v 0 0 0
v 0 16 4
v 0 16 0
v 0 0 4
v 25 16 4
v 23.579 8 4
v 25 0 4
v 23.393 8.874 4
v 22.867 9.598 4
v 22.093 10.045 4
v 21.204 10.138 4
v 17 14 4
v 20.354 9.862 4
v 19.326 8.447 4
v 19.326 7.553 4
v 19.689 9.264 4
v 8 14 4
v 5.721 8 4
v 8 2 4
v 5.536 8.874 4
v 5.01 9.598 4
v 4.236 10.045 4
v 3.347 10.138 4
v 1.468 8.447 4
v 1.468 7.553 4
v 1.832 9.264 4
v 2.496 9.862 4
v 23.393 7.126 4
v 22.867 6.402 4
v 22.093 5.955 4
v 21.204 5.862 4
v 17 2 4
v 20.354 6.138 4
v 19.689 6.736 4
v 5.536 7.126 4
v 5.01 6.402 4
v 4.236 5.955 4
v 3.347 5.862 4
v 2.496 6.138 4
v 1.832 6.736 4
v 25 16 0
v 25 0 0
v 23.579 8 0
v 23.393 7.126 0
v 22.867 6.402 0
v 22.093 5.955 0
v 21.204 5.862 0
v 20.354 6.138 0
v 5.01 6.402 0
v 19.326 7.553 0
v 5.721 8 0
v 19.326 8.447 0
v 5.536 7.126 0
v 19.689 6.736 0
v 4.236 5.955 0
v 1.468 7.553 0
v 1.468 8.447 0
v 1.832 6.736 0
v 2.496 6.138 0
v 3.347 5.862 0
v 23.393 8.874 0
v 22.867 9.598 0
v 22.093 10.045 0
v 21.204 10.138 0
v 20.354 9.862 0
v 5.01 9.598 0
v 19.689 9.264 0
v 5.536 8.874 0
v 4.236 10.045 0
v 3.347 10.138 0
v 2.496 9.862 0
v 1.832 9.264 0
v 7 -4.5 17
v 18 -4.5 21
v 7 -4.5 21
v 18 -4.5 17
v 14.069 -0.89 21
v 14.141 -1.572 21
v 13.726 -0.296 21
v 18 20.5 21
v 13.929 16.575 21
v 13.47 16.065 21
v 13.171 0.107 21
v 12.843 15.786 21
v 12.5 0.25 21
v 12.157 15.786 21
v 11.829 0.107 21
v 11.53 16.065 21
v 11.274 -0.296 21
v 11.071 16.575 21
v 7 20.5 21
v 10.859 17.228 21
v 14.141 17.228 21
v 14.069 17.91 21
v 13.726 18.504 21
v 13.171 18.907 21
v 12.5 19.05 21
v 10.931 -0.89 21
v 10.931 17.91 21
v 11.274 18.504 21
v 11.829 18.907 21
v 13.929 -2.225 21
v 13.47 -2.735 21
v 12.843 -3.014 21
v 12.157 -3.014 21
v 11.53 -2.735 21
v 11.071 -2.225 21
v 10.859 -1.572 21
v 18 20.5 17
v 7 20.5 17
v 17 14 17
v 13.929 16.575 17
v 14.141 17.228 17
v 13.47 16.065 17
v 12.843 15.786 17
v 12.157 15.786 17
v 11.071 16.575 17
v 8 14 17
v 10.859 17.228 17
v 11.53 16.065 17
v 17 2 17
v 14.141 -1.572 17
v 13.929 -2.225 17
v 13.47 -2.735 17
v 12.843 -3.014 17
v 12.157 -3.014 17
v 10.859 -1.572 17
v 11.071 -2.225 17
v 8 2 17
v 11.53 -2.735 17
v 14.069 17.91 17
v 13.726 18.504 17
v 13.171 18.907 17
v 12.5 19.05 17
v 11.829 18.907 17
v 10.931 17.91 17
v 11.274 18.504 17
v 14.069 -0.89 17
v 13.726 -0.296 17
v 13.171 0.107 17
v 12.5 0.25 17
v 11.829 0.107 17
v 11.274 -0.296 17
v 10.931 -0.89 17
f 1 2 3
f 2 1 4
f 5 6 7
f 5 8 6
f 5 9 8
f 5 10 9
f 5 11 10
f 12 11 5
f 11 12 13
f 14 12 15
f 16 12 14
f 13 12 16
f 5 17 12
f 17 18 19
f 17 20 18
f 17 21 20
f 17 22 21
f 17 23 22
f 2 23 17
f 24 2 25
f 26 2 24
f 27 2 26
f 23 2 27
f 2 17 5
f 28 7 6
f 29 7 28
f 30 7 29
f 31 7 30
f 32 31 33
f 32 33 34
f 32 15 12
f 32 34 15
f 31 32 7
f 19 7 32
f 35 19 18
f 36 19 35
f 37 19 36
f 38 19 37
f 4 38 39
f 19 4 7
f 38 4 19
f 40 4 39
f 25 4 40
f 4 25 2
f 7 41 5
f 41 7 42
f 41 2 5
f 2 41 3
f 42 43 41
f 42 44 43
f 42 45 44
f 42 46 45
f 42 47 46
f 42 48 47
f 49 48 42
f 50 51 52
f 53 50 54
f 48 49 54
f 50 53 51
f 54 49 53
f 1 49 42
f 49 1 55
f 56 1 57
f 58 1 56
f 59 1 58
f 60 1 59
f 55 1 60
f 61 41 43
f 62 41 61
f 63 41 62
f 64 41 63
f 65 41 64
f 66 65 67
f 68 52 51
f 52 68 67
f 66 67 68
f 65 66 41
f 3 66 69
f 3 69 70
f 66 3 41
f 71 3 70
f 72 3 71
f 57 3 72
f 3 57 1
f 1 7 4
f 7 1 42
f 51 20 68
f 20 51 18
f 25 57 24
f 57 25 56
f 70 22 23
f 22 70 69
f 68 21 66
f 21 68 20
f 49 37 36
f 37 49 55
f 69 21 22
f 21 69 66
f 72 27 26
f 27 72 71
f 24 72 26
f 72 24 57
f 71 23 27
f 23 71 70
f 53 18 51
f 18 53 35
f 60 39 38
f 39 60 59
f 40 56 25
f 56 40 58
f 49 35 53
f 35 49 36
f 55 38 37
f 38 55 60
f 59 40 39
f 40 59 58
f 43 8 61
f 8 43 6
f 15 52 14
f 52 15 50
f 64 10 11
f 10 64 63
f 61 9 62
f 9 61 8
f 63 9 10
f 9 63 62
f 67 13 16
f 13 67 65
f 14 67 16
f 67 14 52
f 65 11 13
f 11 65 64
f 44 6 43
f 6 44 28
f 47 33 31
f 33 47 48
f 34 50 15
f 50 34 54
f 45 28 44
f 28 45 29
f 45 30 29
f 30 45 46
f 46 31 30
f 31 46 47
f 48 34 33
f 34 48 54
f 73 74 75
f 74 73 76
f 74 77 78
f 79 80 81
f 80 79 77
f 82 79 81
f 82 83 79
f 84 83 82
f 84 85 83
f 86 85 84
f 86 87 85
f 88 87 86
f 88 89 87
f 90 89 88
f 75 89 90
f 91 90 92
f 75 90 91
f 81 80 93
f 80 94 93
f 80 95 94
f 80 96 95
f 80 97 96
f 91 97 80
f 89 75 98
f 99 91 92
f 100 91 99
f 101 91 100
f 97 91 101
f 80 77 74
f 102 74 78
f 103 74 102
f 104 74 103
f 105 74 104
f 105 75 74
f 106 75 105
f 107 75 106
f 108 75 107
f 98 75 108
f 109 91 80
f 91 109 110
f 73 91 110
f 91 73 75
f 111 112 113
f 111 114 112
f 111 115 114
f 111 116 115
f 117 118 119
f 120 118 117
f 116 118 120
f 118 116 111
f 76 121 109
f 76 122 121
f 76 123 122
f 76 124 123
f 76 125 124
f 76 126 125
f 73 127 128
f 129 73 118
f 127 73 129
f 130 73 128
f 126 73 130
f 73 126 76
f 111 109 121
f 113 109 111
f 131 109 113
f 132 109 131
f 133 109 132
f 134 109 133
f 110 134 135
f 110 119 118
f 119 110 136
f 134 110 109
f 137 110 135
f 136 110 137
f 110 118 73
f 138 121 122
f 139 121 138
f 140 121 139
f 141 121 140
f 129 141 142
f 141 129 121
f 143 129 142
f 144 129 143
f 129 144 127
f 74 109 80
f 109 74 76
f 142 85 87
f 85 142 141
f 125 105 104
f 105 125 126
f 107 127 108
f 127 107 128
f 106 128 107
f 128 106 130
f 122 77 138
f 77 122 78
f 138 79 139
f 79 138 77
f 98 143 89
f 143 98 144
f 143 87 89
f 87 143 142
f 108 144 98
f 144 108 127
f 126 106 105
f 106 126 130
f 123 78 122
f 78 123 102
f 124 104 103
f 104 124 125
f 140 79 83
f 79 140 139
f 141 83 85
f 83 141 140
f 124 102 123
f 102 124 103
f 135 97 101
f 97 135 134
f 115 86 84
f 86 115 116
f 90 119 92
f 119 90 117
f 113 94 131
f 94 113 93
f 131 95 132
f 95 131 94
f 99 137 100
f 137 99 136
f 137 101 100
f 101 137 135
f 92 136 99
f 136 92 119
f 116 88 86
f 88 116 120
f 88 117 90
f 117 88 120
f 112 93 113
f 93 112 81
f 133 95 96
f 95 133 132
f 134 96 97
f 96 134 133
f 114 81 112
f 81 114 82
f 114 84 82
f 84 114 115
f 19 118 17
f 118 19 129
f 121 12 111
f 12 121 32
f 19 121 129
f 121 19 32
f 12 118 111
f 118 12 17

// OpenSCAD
WallThickness = 4;

BaseWidth = 25;
BaseDepth = 16;
BaseHoleDiameter = 4.3;

SensorToBaseHeight = 17;

SensorHoleDistance = 18.8;
SensorHoleDiameter = 3.3;
SensorWidth = 25;
SensorDepth = 11;

translate([BaseWidth/2-SensorDepth/2+1, 2, WallThickness-0.1])
cube(size=[SensorDepth-2, BaseDepth-4, SensorToBaseHeight], center=false);


difference() {
    cube(size=[BaseWidth, BaseDepth, WallThickness], center=false);
    translate([BaseWidth/7, BaseDepth/2, 0])
    cylinder(h=WallThickness, d=BaseHoleDiameter, center=false, $fn=15);
    translate([BaseWidth/7*6, BaseDepth/2, 0])
    cylinder(h=WallThickness, d=BaseHoleDiameter, center=false, $fn=15);
    
}


translate([BaseWidth/2+SensorDepth/2, BaseDepth/2-SensorWidth/2, SensorToBaseHeight])
rotate([0, 0, 90])
difference() {
    cube(size=[SensorWidth, SensorDepth, WallThickness], center=false);
    translate([(SensorWidth-SensorHoleDistance)/2, SensorDepth/2, 0])
    cylinder(h=WallThickness, d=SensorHoleDiameter, center=false, $fn=15);
    translate([(SensorWidth-SensorHoleDistance)/2+SensorHoleDistance, SensorDepth/2, 0])
    cylinder(h=WallThickness, d=SensorHoleDiameter, center=false, $fn=15);
}



/*
WallThickness = 1.5;
BaseHeight = 123+WallThickness*2;
BaseWidth = 101+WallThickness*2;
BaseDepth = 30;
CornerRadius = 3;

LCDWidth = 80.5;
LCDHeight = 50.5;
LCDTopOffset = 9+WallThickness;
LCDLeftOffset = 9+WallThickness;

ResetButtonDiameter = 6;
ResetButtonBottomOffet = 8.5+WallThickness;
ResetButtonLeftOffet = 70.5+WallThickness;

RotaryEncoderDiameter = 8;
RotaryEncoderBottomOffet = 19+WallThickness;
RotaryEncoderLeftOffet = 87.5+WallThickness;

CardButtonDiameter = 6;
CardButtonBottomOffet = 44.5+WallThickness;
CardButtonLeftOffet = 78.5+WallThickness;

TFCardHeight = 2;
TFCardWidth = 14;
TFCardBottomOffset = 15+WallThickness;
TFCardFrontOffset = 19+WallThickness;

MountingHoleDiameter = 5.5;

module RoundedRectangle($Width=BaseWidth, $Depth=BaseDepth, $Radius=CornerRadius) 
{
    polygon(points = [[$Radius, 0], [$Width-$Radius, 0],[$Width, $Radius], [$Width, $Depth-$Radius], [$Width-$Radius, $Depth], [$Radius, $Depth], [0, $Depth-$Radius], [0, $Radius]], paths=[[0,1,2,3,4,5,6,7]]);
        
    translate([$Radius,$Radius,0]){
        circle(r=$Radius);
    }        
    translate([$Width-$Radius,$Radius,0]){
        circle(r=$Radius);
    }
    
    translate([$Width-$Radius,$Depth-$Radius,0]){ 
        circle(r=$Radius);
    }
   
    translate([$Radius,$Depth-$Radius,0]){ 
        circle(r=$Radius);
    }
}

module base3D($Width=BaseWidth, $Depth=BaseDepth, $Height=BaseHeight, $Radius=CornerRadius, $Thickness=WallThickness)
{
    difference()
    {
        linear_extrude(height = $Height, center = false, convexity = 0, twist = 0)
        RoundedRectangle($Width, $Depth, $Radius);
        translate([$Thickness, $Thickness, $Thickness]) {
        linear_extrude(height = $Height, center = false, convexity = 0, twist = 0)
        RoundedRectangle($Width-$Thickness*2, $Depth-$Thickness*2, $Radius);
        }
    }
}


difference()
{
    base3D(BaseWidth, BaseDepth, BaseHeight, CornerRadius, WallThickness);
    // Make back open
    translate([0, BaseDepth-WallThickness*2, 10])
        cube(size=[BaseWidth, BaseDepth, BaseHeight], center=false);

    translate([0, BaseDepth-WallThickness*2, 110])
    rotate([45, 0, 0])
        cube(size=[BaseWidth, BaseDepth, BaseHeight], center=false);

    translate([0, BaseDepth-WallThickness*2+3, 30])
    rotate([7, 0, 0])
        cube(size=[BaseWidth, BaseDepth, BaseHeight], center=false);
    
    // LCD window
    translate([LCDLeftOffset, WallThickness, BaseHeight-LCDHeight-LCDTopOffset])
    rotate([90, 0, 0])
        cube(size=[LCDWidth, LCDHeight, WallThickness], center=false);
    // Reset button
    translate([ResetButtonLeftOffet, WallThickness, ResetButtonBottomOffet])
    rotate([90, 0, 0])
        cylinder(h=WallThickness, d=ResetButtonDiameter, center=false, $fn=30);
    // Rotary Encoder
    translate([RotaryEncoderLeftOffet, WallThickness, RotaryEncoderBottomOffet])
    rotate([90, 0, 0])
        cylinder(h=WallThickness, d=RotaryEncoderDiameter, center=false, $fn=30);
    // Card-In Button
    translate([CardButtonLeftOffet, WallThickness, CardButtonBottomOffet])
    rotate([90, 0, 0])
        cylinder(h=WallThickness, d=CardButtonDiameter, center=false, $fn=30);
    // TF Card on the side
    translate([WallThickness,TFCardFrontOffset,TFCardBottomOffset])
    rotate([0, -90, 0])
        cube(size=[TFCardWidth, TFCardHeight, WallThickness], center=false);
    // Mouting holes for 2020
    translate([BaseWidth-WallThickness-MountingHoleDiameter, BaseDepth-WallThickness-MountingHoleDiameter])
        cylinder(h=WallThickness, d=MountingHoleDiameter, center=false, $fn=30);
    translate([BaseWidth/4*2, BaseDepth-WallThickness-MountingHoleDiameter])
        cylinder(h=WallThickness, d=MountingHoleDiameter, center=false, $fn=30);
    translate([WallThickness+MountingHoleDiameter, BaseDepth-WallThickness-MountingHoleDiameter])
        cylinder(h=WallThickness, d=MountingHoleDiameter, center=false, $fn=30);

    translate([BaseWidth-WallThickness-MountingHoleDiameter, WallThickness+MountingHoleDiameter])
        cylinder(h=WallThickness, d=MountingHoleDiameter, center=false, $fn=30);
    translate([BaseWidth/4*2, WallThickness+MountingHoleDiameter])
        cylinder(h=WallThickness, d=MountingHoleDiameter, center=false, $fn=30);
    translate([WallThickness+MountingHoleDiameter, WallThickness+MountingHoleDiameter])
        cylinder(h=WallThickness, d=MountingHoleDiameter, center=false, $fn=30);

}

    translate([64, 0, 52])
    rotate([90, 0, 0])
    linear_extrude(height = WallThickness/2){
        text("CARD IN", size=5, font="Arial Black");
    }

    translate([10, 0, 50])
    rotate([90, 0, 0])
    linear_extrude(height = WallThickness/2){
        text("DIY 12864", size=6, font="Arial Black");
    }

    translate([6, 0, 35])
    rotate([90, 0, 0])
    linear_extrude(height = WallThickness/2){
        text("IBE Group, Inc.", size=6, font="Arial Black");
    }
    translate([5, 0, 20])
    rotate([90, 0, 0])
    linear_extrude(height = WallThickness/2){
        text("Copyright© 2019", size=6, font="Arial Black");
    }

    translate([41.5, 0, 7.5])
    rotate([90, 0, 0])
    linear_extrude(height = WallThickness/2){
        text("RESET", size=5, font="Arial Black");
    }
*/
